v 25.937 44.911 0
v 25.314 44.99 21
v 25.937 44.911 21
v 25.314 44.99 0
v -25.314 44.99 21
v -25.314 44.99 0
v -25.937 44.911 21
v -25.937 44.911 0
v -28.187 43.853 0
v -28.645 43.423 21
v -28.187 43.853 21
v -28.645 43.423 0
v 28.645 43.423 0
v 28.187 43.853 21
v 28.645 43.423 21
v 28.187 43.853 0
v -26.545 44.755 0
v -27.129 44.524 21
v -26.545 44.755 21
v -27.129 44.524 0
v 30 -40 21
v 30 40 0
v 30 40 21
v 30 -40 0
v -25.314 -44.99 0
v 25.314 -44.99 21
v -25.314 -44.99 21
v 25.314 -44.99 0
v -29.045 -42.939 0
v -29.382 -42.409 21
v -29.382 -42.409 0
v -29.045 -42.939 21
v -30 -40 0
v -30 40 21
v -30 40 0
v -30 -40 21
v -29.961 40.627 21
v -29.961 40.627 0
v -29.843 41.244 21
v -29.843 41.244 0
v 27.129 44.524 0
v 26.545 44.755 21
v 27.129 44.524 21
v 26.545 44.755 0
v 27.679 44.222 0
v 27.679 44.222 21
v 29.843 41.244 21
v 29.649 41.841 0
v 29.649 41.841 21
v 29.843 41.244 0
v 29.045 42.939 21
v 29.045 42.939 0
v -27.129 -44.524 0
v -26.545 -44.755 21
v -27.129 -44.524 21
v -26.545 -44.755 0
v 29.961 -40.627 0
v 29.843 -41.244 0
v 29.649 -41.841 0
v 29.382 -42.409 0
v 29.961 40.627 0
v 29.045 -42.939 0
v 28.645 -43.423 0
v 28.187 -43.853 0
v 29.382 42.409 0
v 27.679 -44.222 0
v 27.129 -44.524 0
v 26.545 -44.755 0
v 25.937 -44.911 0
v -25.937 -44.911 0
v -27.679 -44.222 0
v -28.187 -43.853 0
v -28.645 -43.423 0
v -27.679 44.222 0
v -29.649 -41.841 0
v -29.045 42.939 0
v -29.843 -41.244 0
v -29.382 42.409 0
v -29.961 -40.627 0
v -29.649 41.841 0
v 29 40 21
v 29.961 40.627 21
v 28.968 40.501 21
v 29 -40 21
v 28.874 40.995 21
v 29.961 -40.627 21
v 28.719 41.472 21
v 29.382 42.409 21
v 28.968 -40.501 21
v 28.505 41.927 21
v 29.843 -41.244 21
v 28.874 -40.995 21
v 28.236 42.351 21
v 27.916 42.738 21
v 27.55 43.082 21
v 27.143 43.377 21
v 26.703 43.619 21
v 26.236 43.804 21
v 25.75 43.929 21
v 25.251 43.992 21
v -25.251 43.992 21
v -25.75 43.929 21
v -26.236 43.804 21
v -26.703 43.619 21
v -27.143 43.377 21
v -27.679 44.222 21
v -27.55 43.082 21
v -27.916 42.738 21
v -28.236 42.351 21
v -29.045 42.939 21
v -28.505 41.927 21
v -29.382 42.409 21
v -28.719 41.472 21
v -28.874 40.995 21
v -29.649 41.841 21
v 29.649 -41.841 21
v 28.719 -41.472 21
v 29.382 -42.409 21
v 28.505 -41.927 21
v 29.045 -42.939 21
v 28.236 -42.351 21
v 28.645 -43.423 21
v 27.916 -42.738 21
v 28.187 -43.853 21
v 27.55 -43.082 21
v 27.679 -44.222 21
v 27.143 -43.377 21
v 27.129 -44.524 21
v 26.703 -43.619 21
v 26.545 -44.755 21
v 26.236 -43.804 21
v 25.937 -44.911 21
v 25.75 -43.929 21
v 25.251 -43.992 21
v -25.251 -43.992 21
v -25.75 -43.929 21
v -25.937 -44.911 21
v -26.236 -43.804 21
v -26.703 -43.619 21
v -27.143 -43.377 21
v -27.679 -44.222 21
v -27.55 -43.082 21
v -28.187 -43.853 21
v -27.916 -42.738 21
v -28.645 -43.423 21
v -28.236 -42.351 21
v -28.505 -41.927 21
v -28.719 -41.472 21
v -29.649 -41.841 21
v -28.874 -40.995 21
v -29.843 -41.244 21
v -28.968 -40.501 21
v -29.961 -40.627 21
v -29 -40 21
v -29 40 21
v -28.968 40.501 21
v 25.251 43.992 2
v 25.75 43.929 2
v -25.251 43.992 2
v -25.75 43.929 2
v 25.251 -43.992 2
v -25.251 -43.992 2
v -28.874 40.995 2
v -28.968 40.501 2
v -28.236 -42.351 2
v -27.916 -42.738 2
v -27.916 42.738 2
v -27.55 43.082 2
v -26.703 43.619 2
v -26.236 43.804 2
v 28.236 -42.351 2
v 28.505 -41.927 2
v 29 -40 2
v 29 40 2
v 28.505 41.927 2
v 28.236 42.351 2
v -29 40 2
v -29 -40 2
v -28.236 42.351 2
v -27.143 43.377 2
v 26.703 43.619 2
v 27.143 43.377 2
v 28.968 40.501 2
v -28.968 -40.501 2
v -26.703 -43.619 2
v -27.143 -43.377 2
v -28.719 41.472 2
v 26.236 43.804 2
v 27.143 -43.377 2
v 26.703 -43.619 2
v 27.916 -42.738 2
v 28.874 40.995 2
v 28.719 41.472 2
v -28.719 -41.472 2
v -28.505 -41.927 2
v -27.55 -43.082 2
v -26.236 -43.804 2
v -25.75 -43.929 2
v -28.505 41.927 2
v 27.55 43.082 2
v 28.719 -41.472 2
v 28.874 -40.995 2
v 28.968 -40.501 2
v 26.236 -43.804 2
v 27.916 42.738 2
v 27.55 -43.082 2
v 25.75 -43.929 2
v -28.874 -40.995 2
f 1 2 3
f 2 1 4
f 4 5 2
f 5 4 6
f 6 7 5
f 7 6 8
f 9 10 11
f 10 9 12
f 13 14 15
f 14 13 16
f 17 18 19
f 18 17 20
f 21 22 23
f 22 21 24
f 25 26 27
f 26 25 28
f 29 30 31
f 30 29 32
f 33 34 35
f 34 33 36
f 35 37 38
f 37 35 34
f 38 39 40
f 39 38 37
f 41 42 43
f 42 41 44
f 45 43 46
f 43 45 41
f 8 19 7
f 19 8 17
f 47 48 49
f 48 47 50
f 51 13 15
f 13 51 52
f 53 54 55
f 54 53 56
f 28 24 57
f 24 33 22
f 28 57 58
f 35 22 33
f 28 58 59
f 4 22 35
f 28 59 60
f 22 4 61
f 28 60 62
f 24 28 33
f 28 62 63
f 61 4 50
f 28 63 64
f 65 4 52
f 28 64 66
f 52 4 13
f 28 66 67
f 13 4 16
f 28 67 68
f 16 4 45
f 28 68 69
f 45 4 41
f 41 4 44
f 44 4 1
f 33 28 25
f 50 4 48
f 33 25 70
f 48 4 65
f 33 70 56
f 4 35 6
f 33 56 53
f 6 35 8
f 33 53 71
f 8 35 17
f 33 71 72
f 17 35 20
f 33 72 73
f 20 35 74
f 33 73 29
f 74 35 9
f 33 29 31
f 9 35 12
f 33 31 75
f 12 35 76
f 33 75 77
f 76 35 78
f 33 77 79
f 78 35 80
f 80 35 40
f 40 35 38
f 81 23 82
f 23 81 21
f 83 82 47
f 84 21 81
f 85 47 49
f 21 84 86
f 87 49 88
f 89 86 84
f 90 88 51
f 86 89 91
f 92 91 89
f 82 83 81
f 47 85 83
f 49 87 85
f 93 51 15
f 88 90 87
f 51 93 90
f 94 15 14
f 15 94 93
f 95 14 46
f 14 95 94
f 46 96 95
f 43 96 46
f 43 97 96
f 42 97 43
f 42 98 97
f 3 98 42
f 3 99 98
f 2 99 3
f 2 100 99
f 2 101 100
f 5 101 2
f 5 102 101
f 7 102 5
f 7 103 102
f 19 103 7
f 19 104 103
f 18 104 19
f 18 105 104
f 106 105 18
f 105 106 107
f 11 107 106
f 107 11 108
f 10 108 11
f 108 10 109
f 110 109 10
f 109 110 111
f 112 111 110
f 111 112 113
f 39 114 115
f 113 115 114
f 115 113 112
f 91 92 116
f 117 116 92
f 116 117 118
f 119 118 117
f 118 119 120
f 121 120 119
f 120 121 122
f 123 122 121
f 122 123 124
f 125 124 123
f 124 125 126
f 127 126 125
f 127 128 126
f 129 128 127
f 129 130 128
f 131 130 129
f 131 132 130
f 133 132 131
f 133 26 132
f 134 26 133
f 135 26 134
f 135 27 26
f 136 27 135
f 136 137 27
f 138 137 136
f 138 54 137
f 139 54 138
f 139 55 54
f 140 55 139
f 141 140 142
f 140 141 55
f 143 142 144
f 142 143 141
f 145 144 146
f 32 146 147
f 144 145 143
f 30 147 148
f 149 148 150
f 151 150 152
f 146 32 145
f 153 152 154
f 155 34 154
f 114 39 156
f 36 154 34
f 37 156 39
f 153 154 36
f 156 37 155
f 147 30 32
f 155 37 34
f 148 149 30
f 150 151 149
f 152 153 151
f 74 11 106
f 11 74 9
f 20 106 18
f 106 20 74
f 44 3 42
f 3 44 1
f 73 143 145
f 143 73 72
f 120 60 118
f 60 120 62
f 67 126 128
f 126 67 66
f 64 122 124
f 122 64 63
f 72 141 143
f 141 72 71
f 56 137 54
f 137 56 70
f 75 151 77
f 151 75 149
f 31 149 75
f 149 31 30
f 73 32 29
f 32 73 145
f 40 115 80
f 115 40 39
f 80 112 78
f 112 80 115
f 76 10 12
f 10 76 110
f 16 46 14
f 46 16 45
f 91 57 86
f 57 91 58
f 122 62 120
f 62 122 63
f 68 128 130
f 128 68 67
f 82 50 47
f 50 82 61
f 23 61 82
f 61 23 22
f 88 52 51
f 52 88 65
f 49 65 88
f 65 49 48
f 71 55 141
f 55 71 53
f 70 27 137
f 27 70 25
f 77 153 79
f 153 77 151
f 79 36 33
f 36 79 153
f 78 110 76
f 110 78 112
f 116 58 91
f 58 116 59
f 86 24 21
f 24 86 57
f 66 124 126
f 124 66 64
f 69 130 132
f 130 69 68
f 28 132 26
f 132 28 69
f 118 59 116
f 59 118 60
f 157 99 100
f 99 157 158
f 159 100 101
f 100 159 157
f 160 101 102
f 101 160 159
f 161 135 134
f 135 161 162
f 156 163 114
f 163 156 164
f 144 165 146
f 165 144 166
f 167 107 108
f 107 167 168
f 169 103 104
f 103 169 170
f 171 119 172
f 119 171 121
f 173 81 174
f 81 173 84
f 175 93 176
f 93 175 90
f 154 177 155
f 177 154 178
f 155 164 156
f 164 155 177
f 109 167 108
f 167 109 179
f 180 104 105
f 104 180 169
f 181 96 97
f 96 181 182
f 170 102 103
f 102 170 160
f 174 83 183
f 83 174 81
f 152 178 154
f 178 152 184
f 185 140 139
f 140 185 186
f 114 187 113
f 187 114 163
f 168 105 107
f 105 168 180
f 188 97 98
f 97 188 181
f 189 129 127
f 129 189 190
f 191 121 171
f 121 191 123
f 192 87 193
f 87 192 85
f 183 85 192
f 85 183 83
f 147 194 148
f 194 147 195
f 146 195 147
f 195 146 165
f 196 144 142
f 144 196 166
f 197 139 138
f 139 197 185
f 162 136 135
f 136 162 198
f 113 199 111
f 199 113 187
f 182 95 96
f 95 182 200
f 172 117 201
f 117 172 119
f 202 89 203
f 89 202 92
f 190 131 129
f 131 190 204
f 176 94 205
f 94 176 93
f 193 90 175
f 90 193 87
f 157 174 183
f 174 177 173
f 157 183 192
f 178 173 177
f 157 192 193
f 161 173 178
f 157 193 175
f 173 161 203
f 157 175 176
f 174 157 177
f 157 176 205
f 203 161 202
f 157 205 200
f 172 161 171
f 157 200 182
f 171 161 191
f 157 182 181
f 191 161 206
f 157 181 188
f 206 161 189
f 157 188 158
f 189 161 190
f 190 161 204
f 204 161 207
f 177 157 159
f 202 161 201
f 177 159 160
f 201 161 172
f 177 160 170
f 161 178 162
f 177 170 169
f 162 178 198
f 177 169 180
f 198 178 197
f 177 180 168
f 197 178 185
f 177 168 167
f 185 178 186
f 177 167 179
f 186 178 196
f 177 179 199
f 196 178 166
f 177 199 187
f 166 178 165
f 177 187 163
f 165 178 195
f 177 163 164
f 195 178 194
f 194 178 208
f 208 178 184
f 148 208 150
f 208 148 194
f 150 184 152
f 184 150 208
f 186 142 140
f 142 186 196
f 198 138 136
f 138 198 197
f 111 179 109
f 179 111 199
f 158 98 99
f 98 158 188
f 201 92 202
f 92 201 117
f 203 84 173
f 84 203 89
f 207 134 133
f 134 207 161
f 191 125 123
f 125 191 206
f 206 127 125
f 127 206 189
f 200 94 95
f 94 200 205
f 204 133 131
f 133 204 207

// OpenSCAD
$fn = 50;


difference() {
	union() {
		hull() {
			translate(v = [-25.0000000000, 40.0000000000, 0]) {
				cylinder(h = 21, r = 5);
			}
			translate(v = [25.0000000000, 40.0000000000, 0]) {
				cylinder(h = 21, r = 5);
			}
			translate(v = [-25.0000000000, -40.0000000000, 0]) {
				cylinder(h = 21, r = 5);
			}
			translate(v = [25.0000000000, -40.0000000000, 0]) {
				cylinder(h = 21, r = 5);
			}
		}
	}
	union() {
		translate(v = [0, 0, 2]) {
			hull() {
				translate(v = [-25.0000000000, 40.0000000000, 0]) {
					cylinder(h = 19, r = 4);
				}
				translate(v = [25.0000000000, 40.0000000000, 0]) {
					cylinder(h = 19, r = 4);
				}
				translate(v = [-25.0000000000, -40.0000000000, 0]) {
					cylinder(h = 19, r = 4);
				}
				translate(v = [25.0000000000, -40.0000000000, 0]) {
					cylinder(h = 19, r = 4);
				}
			}
		}
	}
}
